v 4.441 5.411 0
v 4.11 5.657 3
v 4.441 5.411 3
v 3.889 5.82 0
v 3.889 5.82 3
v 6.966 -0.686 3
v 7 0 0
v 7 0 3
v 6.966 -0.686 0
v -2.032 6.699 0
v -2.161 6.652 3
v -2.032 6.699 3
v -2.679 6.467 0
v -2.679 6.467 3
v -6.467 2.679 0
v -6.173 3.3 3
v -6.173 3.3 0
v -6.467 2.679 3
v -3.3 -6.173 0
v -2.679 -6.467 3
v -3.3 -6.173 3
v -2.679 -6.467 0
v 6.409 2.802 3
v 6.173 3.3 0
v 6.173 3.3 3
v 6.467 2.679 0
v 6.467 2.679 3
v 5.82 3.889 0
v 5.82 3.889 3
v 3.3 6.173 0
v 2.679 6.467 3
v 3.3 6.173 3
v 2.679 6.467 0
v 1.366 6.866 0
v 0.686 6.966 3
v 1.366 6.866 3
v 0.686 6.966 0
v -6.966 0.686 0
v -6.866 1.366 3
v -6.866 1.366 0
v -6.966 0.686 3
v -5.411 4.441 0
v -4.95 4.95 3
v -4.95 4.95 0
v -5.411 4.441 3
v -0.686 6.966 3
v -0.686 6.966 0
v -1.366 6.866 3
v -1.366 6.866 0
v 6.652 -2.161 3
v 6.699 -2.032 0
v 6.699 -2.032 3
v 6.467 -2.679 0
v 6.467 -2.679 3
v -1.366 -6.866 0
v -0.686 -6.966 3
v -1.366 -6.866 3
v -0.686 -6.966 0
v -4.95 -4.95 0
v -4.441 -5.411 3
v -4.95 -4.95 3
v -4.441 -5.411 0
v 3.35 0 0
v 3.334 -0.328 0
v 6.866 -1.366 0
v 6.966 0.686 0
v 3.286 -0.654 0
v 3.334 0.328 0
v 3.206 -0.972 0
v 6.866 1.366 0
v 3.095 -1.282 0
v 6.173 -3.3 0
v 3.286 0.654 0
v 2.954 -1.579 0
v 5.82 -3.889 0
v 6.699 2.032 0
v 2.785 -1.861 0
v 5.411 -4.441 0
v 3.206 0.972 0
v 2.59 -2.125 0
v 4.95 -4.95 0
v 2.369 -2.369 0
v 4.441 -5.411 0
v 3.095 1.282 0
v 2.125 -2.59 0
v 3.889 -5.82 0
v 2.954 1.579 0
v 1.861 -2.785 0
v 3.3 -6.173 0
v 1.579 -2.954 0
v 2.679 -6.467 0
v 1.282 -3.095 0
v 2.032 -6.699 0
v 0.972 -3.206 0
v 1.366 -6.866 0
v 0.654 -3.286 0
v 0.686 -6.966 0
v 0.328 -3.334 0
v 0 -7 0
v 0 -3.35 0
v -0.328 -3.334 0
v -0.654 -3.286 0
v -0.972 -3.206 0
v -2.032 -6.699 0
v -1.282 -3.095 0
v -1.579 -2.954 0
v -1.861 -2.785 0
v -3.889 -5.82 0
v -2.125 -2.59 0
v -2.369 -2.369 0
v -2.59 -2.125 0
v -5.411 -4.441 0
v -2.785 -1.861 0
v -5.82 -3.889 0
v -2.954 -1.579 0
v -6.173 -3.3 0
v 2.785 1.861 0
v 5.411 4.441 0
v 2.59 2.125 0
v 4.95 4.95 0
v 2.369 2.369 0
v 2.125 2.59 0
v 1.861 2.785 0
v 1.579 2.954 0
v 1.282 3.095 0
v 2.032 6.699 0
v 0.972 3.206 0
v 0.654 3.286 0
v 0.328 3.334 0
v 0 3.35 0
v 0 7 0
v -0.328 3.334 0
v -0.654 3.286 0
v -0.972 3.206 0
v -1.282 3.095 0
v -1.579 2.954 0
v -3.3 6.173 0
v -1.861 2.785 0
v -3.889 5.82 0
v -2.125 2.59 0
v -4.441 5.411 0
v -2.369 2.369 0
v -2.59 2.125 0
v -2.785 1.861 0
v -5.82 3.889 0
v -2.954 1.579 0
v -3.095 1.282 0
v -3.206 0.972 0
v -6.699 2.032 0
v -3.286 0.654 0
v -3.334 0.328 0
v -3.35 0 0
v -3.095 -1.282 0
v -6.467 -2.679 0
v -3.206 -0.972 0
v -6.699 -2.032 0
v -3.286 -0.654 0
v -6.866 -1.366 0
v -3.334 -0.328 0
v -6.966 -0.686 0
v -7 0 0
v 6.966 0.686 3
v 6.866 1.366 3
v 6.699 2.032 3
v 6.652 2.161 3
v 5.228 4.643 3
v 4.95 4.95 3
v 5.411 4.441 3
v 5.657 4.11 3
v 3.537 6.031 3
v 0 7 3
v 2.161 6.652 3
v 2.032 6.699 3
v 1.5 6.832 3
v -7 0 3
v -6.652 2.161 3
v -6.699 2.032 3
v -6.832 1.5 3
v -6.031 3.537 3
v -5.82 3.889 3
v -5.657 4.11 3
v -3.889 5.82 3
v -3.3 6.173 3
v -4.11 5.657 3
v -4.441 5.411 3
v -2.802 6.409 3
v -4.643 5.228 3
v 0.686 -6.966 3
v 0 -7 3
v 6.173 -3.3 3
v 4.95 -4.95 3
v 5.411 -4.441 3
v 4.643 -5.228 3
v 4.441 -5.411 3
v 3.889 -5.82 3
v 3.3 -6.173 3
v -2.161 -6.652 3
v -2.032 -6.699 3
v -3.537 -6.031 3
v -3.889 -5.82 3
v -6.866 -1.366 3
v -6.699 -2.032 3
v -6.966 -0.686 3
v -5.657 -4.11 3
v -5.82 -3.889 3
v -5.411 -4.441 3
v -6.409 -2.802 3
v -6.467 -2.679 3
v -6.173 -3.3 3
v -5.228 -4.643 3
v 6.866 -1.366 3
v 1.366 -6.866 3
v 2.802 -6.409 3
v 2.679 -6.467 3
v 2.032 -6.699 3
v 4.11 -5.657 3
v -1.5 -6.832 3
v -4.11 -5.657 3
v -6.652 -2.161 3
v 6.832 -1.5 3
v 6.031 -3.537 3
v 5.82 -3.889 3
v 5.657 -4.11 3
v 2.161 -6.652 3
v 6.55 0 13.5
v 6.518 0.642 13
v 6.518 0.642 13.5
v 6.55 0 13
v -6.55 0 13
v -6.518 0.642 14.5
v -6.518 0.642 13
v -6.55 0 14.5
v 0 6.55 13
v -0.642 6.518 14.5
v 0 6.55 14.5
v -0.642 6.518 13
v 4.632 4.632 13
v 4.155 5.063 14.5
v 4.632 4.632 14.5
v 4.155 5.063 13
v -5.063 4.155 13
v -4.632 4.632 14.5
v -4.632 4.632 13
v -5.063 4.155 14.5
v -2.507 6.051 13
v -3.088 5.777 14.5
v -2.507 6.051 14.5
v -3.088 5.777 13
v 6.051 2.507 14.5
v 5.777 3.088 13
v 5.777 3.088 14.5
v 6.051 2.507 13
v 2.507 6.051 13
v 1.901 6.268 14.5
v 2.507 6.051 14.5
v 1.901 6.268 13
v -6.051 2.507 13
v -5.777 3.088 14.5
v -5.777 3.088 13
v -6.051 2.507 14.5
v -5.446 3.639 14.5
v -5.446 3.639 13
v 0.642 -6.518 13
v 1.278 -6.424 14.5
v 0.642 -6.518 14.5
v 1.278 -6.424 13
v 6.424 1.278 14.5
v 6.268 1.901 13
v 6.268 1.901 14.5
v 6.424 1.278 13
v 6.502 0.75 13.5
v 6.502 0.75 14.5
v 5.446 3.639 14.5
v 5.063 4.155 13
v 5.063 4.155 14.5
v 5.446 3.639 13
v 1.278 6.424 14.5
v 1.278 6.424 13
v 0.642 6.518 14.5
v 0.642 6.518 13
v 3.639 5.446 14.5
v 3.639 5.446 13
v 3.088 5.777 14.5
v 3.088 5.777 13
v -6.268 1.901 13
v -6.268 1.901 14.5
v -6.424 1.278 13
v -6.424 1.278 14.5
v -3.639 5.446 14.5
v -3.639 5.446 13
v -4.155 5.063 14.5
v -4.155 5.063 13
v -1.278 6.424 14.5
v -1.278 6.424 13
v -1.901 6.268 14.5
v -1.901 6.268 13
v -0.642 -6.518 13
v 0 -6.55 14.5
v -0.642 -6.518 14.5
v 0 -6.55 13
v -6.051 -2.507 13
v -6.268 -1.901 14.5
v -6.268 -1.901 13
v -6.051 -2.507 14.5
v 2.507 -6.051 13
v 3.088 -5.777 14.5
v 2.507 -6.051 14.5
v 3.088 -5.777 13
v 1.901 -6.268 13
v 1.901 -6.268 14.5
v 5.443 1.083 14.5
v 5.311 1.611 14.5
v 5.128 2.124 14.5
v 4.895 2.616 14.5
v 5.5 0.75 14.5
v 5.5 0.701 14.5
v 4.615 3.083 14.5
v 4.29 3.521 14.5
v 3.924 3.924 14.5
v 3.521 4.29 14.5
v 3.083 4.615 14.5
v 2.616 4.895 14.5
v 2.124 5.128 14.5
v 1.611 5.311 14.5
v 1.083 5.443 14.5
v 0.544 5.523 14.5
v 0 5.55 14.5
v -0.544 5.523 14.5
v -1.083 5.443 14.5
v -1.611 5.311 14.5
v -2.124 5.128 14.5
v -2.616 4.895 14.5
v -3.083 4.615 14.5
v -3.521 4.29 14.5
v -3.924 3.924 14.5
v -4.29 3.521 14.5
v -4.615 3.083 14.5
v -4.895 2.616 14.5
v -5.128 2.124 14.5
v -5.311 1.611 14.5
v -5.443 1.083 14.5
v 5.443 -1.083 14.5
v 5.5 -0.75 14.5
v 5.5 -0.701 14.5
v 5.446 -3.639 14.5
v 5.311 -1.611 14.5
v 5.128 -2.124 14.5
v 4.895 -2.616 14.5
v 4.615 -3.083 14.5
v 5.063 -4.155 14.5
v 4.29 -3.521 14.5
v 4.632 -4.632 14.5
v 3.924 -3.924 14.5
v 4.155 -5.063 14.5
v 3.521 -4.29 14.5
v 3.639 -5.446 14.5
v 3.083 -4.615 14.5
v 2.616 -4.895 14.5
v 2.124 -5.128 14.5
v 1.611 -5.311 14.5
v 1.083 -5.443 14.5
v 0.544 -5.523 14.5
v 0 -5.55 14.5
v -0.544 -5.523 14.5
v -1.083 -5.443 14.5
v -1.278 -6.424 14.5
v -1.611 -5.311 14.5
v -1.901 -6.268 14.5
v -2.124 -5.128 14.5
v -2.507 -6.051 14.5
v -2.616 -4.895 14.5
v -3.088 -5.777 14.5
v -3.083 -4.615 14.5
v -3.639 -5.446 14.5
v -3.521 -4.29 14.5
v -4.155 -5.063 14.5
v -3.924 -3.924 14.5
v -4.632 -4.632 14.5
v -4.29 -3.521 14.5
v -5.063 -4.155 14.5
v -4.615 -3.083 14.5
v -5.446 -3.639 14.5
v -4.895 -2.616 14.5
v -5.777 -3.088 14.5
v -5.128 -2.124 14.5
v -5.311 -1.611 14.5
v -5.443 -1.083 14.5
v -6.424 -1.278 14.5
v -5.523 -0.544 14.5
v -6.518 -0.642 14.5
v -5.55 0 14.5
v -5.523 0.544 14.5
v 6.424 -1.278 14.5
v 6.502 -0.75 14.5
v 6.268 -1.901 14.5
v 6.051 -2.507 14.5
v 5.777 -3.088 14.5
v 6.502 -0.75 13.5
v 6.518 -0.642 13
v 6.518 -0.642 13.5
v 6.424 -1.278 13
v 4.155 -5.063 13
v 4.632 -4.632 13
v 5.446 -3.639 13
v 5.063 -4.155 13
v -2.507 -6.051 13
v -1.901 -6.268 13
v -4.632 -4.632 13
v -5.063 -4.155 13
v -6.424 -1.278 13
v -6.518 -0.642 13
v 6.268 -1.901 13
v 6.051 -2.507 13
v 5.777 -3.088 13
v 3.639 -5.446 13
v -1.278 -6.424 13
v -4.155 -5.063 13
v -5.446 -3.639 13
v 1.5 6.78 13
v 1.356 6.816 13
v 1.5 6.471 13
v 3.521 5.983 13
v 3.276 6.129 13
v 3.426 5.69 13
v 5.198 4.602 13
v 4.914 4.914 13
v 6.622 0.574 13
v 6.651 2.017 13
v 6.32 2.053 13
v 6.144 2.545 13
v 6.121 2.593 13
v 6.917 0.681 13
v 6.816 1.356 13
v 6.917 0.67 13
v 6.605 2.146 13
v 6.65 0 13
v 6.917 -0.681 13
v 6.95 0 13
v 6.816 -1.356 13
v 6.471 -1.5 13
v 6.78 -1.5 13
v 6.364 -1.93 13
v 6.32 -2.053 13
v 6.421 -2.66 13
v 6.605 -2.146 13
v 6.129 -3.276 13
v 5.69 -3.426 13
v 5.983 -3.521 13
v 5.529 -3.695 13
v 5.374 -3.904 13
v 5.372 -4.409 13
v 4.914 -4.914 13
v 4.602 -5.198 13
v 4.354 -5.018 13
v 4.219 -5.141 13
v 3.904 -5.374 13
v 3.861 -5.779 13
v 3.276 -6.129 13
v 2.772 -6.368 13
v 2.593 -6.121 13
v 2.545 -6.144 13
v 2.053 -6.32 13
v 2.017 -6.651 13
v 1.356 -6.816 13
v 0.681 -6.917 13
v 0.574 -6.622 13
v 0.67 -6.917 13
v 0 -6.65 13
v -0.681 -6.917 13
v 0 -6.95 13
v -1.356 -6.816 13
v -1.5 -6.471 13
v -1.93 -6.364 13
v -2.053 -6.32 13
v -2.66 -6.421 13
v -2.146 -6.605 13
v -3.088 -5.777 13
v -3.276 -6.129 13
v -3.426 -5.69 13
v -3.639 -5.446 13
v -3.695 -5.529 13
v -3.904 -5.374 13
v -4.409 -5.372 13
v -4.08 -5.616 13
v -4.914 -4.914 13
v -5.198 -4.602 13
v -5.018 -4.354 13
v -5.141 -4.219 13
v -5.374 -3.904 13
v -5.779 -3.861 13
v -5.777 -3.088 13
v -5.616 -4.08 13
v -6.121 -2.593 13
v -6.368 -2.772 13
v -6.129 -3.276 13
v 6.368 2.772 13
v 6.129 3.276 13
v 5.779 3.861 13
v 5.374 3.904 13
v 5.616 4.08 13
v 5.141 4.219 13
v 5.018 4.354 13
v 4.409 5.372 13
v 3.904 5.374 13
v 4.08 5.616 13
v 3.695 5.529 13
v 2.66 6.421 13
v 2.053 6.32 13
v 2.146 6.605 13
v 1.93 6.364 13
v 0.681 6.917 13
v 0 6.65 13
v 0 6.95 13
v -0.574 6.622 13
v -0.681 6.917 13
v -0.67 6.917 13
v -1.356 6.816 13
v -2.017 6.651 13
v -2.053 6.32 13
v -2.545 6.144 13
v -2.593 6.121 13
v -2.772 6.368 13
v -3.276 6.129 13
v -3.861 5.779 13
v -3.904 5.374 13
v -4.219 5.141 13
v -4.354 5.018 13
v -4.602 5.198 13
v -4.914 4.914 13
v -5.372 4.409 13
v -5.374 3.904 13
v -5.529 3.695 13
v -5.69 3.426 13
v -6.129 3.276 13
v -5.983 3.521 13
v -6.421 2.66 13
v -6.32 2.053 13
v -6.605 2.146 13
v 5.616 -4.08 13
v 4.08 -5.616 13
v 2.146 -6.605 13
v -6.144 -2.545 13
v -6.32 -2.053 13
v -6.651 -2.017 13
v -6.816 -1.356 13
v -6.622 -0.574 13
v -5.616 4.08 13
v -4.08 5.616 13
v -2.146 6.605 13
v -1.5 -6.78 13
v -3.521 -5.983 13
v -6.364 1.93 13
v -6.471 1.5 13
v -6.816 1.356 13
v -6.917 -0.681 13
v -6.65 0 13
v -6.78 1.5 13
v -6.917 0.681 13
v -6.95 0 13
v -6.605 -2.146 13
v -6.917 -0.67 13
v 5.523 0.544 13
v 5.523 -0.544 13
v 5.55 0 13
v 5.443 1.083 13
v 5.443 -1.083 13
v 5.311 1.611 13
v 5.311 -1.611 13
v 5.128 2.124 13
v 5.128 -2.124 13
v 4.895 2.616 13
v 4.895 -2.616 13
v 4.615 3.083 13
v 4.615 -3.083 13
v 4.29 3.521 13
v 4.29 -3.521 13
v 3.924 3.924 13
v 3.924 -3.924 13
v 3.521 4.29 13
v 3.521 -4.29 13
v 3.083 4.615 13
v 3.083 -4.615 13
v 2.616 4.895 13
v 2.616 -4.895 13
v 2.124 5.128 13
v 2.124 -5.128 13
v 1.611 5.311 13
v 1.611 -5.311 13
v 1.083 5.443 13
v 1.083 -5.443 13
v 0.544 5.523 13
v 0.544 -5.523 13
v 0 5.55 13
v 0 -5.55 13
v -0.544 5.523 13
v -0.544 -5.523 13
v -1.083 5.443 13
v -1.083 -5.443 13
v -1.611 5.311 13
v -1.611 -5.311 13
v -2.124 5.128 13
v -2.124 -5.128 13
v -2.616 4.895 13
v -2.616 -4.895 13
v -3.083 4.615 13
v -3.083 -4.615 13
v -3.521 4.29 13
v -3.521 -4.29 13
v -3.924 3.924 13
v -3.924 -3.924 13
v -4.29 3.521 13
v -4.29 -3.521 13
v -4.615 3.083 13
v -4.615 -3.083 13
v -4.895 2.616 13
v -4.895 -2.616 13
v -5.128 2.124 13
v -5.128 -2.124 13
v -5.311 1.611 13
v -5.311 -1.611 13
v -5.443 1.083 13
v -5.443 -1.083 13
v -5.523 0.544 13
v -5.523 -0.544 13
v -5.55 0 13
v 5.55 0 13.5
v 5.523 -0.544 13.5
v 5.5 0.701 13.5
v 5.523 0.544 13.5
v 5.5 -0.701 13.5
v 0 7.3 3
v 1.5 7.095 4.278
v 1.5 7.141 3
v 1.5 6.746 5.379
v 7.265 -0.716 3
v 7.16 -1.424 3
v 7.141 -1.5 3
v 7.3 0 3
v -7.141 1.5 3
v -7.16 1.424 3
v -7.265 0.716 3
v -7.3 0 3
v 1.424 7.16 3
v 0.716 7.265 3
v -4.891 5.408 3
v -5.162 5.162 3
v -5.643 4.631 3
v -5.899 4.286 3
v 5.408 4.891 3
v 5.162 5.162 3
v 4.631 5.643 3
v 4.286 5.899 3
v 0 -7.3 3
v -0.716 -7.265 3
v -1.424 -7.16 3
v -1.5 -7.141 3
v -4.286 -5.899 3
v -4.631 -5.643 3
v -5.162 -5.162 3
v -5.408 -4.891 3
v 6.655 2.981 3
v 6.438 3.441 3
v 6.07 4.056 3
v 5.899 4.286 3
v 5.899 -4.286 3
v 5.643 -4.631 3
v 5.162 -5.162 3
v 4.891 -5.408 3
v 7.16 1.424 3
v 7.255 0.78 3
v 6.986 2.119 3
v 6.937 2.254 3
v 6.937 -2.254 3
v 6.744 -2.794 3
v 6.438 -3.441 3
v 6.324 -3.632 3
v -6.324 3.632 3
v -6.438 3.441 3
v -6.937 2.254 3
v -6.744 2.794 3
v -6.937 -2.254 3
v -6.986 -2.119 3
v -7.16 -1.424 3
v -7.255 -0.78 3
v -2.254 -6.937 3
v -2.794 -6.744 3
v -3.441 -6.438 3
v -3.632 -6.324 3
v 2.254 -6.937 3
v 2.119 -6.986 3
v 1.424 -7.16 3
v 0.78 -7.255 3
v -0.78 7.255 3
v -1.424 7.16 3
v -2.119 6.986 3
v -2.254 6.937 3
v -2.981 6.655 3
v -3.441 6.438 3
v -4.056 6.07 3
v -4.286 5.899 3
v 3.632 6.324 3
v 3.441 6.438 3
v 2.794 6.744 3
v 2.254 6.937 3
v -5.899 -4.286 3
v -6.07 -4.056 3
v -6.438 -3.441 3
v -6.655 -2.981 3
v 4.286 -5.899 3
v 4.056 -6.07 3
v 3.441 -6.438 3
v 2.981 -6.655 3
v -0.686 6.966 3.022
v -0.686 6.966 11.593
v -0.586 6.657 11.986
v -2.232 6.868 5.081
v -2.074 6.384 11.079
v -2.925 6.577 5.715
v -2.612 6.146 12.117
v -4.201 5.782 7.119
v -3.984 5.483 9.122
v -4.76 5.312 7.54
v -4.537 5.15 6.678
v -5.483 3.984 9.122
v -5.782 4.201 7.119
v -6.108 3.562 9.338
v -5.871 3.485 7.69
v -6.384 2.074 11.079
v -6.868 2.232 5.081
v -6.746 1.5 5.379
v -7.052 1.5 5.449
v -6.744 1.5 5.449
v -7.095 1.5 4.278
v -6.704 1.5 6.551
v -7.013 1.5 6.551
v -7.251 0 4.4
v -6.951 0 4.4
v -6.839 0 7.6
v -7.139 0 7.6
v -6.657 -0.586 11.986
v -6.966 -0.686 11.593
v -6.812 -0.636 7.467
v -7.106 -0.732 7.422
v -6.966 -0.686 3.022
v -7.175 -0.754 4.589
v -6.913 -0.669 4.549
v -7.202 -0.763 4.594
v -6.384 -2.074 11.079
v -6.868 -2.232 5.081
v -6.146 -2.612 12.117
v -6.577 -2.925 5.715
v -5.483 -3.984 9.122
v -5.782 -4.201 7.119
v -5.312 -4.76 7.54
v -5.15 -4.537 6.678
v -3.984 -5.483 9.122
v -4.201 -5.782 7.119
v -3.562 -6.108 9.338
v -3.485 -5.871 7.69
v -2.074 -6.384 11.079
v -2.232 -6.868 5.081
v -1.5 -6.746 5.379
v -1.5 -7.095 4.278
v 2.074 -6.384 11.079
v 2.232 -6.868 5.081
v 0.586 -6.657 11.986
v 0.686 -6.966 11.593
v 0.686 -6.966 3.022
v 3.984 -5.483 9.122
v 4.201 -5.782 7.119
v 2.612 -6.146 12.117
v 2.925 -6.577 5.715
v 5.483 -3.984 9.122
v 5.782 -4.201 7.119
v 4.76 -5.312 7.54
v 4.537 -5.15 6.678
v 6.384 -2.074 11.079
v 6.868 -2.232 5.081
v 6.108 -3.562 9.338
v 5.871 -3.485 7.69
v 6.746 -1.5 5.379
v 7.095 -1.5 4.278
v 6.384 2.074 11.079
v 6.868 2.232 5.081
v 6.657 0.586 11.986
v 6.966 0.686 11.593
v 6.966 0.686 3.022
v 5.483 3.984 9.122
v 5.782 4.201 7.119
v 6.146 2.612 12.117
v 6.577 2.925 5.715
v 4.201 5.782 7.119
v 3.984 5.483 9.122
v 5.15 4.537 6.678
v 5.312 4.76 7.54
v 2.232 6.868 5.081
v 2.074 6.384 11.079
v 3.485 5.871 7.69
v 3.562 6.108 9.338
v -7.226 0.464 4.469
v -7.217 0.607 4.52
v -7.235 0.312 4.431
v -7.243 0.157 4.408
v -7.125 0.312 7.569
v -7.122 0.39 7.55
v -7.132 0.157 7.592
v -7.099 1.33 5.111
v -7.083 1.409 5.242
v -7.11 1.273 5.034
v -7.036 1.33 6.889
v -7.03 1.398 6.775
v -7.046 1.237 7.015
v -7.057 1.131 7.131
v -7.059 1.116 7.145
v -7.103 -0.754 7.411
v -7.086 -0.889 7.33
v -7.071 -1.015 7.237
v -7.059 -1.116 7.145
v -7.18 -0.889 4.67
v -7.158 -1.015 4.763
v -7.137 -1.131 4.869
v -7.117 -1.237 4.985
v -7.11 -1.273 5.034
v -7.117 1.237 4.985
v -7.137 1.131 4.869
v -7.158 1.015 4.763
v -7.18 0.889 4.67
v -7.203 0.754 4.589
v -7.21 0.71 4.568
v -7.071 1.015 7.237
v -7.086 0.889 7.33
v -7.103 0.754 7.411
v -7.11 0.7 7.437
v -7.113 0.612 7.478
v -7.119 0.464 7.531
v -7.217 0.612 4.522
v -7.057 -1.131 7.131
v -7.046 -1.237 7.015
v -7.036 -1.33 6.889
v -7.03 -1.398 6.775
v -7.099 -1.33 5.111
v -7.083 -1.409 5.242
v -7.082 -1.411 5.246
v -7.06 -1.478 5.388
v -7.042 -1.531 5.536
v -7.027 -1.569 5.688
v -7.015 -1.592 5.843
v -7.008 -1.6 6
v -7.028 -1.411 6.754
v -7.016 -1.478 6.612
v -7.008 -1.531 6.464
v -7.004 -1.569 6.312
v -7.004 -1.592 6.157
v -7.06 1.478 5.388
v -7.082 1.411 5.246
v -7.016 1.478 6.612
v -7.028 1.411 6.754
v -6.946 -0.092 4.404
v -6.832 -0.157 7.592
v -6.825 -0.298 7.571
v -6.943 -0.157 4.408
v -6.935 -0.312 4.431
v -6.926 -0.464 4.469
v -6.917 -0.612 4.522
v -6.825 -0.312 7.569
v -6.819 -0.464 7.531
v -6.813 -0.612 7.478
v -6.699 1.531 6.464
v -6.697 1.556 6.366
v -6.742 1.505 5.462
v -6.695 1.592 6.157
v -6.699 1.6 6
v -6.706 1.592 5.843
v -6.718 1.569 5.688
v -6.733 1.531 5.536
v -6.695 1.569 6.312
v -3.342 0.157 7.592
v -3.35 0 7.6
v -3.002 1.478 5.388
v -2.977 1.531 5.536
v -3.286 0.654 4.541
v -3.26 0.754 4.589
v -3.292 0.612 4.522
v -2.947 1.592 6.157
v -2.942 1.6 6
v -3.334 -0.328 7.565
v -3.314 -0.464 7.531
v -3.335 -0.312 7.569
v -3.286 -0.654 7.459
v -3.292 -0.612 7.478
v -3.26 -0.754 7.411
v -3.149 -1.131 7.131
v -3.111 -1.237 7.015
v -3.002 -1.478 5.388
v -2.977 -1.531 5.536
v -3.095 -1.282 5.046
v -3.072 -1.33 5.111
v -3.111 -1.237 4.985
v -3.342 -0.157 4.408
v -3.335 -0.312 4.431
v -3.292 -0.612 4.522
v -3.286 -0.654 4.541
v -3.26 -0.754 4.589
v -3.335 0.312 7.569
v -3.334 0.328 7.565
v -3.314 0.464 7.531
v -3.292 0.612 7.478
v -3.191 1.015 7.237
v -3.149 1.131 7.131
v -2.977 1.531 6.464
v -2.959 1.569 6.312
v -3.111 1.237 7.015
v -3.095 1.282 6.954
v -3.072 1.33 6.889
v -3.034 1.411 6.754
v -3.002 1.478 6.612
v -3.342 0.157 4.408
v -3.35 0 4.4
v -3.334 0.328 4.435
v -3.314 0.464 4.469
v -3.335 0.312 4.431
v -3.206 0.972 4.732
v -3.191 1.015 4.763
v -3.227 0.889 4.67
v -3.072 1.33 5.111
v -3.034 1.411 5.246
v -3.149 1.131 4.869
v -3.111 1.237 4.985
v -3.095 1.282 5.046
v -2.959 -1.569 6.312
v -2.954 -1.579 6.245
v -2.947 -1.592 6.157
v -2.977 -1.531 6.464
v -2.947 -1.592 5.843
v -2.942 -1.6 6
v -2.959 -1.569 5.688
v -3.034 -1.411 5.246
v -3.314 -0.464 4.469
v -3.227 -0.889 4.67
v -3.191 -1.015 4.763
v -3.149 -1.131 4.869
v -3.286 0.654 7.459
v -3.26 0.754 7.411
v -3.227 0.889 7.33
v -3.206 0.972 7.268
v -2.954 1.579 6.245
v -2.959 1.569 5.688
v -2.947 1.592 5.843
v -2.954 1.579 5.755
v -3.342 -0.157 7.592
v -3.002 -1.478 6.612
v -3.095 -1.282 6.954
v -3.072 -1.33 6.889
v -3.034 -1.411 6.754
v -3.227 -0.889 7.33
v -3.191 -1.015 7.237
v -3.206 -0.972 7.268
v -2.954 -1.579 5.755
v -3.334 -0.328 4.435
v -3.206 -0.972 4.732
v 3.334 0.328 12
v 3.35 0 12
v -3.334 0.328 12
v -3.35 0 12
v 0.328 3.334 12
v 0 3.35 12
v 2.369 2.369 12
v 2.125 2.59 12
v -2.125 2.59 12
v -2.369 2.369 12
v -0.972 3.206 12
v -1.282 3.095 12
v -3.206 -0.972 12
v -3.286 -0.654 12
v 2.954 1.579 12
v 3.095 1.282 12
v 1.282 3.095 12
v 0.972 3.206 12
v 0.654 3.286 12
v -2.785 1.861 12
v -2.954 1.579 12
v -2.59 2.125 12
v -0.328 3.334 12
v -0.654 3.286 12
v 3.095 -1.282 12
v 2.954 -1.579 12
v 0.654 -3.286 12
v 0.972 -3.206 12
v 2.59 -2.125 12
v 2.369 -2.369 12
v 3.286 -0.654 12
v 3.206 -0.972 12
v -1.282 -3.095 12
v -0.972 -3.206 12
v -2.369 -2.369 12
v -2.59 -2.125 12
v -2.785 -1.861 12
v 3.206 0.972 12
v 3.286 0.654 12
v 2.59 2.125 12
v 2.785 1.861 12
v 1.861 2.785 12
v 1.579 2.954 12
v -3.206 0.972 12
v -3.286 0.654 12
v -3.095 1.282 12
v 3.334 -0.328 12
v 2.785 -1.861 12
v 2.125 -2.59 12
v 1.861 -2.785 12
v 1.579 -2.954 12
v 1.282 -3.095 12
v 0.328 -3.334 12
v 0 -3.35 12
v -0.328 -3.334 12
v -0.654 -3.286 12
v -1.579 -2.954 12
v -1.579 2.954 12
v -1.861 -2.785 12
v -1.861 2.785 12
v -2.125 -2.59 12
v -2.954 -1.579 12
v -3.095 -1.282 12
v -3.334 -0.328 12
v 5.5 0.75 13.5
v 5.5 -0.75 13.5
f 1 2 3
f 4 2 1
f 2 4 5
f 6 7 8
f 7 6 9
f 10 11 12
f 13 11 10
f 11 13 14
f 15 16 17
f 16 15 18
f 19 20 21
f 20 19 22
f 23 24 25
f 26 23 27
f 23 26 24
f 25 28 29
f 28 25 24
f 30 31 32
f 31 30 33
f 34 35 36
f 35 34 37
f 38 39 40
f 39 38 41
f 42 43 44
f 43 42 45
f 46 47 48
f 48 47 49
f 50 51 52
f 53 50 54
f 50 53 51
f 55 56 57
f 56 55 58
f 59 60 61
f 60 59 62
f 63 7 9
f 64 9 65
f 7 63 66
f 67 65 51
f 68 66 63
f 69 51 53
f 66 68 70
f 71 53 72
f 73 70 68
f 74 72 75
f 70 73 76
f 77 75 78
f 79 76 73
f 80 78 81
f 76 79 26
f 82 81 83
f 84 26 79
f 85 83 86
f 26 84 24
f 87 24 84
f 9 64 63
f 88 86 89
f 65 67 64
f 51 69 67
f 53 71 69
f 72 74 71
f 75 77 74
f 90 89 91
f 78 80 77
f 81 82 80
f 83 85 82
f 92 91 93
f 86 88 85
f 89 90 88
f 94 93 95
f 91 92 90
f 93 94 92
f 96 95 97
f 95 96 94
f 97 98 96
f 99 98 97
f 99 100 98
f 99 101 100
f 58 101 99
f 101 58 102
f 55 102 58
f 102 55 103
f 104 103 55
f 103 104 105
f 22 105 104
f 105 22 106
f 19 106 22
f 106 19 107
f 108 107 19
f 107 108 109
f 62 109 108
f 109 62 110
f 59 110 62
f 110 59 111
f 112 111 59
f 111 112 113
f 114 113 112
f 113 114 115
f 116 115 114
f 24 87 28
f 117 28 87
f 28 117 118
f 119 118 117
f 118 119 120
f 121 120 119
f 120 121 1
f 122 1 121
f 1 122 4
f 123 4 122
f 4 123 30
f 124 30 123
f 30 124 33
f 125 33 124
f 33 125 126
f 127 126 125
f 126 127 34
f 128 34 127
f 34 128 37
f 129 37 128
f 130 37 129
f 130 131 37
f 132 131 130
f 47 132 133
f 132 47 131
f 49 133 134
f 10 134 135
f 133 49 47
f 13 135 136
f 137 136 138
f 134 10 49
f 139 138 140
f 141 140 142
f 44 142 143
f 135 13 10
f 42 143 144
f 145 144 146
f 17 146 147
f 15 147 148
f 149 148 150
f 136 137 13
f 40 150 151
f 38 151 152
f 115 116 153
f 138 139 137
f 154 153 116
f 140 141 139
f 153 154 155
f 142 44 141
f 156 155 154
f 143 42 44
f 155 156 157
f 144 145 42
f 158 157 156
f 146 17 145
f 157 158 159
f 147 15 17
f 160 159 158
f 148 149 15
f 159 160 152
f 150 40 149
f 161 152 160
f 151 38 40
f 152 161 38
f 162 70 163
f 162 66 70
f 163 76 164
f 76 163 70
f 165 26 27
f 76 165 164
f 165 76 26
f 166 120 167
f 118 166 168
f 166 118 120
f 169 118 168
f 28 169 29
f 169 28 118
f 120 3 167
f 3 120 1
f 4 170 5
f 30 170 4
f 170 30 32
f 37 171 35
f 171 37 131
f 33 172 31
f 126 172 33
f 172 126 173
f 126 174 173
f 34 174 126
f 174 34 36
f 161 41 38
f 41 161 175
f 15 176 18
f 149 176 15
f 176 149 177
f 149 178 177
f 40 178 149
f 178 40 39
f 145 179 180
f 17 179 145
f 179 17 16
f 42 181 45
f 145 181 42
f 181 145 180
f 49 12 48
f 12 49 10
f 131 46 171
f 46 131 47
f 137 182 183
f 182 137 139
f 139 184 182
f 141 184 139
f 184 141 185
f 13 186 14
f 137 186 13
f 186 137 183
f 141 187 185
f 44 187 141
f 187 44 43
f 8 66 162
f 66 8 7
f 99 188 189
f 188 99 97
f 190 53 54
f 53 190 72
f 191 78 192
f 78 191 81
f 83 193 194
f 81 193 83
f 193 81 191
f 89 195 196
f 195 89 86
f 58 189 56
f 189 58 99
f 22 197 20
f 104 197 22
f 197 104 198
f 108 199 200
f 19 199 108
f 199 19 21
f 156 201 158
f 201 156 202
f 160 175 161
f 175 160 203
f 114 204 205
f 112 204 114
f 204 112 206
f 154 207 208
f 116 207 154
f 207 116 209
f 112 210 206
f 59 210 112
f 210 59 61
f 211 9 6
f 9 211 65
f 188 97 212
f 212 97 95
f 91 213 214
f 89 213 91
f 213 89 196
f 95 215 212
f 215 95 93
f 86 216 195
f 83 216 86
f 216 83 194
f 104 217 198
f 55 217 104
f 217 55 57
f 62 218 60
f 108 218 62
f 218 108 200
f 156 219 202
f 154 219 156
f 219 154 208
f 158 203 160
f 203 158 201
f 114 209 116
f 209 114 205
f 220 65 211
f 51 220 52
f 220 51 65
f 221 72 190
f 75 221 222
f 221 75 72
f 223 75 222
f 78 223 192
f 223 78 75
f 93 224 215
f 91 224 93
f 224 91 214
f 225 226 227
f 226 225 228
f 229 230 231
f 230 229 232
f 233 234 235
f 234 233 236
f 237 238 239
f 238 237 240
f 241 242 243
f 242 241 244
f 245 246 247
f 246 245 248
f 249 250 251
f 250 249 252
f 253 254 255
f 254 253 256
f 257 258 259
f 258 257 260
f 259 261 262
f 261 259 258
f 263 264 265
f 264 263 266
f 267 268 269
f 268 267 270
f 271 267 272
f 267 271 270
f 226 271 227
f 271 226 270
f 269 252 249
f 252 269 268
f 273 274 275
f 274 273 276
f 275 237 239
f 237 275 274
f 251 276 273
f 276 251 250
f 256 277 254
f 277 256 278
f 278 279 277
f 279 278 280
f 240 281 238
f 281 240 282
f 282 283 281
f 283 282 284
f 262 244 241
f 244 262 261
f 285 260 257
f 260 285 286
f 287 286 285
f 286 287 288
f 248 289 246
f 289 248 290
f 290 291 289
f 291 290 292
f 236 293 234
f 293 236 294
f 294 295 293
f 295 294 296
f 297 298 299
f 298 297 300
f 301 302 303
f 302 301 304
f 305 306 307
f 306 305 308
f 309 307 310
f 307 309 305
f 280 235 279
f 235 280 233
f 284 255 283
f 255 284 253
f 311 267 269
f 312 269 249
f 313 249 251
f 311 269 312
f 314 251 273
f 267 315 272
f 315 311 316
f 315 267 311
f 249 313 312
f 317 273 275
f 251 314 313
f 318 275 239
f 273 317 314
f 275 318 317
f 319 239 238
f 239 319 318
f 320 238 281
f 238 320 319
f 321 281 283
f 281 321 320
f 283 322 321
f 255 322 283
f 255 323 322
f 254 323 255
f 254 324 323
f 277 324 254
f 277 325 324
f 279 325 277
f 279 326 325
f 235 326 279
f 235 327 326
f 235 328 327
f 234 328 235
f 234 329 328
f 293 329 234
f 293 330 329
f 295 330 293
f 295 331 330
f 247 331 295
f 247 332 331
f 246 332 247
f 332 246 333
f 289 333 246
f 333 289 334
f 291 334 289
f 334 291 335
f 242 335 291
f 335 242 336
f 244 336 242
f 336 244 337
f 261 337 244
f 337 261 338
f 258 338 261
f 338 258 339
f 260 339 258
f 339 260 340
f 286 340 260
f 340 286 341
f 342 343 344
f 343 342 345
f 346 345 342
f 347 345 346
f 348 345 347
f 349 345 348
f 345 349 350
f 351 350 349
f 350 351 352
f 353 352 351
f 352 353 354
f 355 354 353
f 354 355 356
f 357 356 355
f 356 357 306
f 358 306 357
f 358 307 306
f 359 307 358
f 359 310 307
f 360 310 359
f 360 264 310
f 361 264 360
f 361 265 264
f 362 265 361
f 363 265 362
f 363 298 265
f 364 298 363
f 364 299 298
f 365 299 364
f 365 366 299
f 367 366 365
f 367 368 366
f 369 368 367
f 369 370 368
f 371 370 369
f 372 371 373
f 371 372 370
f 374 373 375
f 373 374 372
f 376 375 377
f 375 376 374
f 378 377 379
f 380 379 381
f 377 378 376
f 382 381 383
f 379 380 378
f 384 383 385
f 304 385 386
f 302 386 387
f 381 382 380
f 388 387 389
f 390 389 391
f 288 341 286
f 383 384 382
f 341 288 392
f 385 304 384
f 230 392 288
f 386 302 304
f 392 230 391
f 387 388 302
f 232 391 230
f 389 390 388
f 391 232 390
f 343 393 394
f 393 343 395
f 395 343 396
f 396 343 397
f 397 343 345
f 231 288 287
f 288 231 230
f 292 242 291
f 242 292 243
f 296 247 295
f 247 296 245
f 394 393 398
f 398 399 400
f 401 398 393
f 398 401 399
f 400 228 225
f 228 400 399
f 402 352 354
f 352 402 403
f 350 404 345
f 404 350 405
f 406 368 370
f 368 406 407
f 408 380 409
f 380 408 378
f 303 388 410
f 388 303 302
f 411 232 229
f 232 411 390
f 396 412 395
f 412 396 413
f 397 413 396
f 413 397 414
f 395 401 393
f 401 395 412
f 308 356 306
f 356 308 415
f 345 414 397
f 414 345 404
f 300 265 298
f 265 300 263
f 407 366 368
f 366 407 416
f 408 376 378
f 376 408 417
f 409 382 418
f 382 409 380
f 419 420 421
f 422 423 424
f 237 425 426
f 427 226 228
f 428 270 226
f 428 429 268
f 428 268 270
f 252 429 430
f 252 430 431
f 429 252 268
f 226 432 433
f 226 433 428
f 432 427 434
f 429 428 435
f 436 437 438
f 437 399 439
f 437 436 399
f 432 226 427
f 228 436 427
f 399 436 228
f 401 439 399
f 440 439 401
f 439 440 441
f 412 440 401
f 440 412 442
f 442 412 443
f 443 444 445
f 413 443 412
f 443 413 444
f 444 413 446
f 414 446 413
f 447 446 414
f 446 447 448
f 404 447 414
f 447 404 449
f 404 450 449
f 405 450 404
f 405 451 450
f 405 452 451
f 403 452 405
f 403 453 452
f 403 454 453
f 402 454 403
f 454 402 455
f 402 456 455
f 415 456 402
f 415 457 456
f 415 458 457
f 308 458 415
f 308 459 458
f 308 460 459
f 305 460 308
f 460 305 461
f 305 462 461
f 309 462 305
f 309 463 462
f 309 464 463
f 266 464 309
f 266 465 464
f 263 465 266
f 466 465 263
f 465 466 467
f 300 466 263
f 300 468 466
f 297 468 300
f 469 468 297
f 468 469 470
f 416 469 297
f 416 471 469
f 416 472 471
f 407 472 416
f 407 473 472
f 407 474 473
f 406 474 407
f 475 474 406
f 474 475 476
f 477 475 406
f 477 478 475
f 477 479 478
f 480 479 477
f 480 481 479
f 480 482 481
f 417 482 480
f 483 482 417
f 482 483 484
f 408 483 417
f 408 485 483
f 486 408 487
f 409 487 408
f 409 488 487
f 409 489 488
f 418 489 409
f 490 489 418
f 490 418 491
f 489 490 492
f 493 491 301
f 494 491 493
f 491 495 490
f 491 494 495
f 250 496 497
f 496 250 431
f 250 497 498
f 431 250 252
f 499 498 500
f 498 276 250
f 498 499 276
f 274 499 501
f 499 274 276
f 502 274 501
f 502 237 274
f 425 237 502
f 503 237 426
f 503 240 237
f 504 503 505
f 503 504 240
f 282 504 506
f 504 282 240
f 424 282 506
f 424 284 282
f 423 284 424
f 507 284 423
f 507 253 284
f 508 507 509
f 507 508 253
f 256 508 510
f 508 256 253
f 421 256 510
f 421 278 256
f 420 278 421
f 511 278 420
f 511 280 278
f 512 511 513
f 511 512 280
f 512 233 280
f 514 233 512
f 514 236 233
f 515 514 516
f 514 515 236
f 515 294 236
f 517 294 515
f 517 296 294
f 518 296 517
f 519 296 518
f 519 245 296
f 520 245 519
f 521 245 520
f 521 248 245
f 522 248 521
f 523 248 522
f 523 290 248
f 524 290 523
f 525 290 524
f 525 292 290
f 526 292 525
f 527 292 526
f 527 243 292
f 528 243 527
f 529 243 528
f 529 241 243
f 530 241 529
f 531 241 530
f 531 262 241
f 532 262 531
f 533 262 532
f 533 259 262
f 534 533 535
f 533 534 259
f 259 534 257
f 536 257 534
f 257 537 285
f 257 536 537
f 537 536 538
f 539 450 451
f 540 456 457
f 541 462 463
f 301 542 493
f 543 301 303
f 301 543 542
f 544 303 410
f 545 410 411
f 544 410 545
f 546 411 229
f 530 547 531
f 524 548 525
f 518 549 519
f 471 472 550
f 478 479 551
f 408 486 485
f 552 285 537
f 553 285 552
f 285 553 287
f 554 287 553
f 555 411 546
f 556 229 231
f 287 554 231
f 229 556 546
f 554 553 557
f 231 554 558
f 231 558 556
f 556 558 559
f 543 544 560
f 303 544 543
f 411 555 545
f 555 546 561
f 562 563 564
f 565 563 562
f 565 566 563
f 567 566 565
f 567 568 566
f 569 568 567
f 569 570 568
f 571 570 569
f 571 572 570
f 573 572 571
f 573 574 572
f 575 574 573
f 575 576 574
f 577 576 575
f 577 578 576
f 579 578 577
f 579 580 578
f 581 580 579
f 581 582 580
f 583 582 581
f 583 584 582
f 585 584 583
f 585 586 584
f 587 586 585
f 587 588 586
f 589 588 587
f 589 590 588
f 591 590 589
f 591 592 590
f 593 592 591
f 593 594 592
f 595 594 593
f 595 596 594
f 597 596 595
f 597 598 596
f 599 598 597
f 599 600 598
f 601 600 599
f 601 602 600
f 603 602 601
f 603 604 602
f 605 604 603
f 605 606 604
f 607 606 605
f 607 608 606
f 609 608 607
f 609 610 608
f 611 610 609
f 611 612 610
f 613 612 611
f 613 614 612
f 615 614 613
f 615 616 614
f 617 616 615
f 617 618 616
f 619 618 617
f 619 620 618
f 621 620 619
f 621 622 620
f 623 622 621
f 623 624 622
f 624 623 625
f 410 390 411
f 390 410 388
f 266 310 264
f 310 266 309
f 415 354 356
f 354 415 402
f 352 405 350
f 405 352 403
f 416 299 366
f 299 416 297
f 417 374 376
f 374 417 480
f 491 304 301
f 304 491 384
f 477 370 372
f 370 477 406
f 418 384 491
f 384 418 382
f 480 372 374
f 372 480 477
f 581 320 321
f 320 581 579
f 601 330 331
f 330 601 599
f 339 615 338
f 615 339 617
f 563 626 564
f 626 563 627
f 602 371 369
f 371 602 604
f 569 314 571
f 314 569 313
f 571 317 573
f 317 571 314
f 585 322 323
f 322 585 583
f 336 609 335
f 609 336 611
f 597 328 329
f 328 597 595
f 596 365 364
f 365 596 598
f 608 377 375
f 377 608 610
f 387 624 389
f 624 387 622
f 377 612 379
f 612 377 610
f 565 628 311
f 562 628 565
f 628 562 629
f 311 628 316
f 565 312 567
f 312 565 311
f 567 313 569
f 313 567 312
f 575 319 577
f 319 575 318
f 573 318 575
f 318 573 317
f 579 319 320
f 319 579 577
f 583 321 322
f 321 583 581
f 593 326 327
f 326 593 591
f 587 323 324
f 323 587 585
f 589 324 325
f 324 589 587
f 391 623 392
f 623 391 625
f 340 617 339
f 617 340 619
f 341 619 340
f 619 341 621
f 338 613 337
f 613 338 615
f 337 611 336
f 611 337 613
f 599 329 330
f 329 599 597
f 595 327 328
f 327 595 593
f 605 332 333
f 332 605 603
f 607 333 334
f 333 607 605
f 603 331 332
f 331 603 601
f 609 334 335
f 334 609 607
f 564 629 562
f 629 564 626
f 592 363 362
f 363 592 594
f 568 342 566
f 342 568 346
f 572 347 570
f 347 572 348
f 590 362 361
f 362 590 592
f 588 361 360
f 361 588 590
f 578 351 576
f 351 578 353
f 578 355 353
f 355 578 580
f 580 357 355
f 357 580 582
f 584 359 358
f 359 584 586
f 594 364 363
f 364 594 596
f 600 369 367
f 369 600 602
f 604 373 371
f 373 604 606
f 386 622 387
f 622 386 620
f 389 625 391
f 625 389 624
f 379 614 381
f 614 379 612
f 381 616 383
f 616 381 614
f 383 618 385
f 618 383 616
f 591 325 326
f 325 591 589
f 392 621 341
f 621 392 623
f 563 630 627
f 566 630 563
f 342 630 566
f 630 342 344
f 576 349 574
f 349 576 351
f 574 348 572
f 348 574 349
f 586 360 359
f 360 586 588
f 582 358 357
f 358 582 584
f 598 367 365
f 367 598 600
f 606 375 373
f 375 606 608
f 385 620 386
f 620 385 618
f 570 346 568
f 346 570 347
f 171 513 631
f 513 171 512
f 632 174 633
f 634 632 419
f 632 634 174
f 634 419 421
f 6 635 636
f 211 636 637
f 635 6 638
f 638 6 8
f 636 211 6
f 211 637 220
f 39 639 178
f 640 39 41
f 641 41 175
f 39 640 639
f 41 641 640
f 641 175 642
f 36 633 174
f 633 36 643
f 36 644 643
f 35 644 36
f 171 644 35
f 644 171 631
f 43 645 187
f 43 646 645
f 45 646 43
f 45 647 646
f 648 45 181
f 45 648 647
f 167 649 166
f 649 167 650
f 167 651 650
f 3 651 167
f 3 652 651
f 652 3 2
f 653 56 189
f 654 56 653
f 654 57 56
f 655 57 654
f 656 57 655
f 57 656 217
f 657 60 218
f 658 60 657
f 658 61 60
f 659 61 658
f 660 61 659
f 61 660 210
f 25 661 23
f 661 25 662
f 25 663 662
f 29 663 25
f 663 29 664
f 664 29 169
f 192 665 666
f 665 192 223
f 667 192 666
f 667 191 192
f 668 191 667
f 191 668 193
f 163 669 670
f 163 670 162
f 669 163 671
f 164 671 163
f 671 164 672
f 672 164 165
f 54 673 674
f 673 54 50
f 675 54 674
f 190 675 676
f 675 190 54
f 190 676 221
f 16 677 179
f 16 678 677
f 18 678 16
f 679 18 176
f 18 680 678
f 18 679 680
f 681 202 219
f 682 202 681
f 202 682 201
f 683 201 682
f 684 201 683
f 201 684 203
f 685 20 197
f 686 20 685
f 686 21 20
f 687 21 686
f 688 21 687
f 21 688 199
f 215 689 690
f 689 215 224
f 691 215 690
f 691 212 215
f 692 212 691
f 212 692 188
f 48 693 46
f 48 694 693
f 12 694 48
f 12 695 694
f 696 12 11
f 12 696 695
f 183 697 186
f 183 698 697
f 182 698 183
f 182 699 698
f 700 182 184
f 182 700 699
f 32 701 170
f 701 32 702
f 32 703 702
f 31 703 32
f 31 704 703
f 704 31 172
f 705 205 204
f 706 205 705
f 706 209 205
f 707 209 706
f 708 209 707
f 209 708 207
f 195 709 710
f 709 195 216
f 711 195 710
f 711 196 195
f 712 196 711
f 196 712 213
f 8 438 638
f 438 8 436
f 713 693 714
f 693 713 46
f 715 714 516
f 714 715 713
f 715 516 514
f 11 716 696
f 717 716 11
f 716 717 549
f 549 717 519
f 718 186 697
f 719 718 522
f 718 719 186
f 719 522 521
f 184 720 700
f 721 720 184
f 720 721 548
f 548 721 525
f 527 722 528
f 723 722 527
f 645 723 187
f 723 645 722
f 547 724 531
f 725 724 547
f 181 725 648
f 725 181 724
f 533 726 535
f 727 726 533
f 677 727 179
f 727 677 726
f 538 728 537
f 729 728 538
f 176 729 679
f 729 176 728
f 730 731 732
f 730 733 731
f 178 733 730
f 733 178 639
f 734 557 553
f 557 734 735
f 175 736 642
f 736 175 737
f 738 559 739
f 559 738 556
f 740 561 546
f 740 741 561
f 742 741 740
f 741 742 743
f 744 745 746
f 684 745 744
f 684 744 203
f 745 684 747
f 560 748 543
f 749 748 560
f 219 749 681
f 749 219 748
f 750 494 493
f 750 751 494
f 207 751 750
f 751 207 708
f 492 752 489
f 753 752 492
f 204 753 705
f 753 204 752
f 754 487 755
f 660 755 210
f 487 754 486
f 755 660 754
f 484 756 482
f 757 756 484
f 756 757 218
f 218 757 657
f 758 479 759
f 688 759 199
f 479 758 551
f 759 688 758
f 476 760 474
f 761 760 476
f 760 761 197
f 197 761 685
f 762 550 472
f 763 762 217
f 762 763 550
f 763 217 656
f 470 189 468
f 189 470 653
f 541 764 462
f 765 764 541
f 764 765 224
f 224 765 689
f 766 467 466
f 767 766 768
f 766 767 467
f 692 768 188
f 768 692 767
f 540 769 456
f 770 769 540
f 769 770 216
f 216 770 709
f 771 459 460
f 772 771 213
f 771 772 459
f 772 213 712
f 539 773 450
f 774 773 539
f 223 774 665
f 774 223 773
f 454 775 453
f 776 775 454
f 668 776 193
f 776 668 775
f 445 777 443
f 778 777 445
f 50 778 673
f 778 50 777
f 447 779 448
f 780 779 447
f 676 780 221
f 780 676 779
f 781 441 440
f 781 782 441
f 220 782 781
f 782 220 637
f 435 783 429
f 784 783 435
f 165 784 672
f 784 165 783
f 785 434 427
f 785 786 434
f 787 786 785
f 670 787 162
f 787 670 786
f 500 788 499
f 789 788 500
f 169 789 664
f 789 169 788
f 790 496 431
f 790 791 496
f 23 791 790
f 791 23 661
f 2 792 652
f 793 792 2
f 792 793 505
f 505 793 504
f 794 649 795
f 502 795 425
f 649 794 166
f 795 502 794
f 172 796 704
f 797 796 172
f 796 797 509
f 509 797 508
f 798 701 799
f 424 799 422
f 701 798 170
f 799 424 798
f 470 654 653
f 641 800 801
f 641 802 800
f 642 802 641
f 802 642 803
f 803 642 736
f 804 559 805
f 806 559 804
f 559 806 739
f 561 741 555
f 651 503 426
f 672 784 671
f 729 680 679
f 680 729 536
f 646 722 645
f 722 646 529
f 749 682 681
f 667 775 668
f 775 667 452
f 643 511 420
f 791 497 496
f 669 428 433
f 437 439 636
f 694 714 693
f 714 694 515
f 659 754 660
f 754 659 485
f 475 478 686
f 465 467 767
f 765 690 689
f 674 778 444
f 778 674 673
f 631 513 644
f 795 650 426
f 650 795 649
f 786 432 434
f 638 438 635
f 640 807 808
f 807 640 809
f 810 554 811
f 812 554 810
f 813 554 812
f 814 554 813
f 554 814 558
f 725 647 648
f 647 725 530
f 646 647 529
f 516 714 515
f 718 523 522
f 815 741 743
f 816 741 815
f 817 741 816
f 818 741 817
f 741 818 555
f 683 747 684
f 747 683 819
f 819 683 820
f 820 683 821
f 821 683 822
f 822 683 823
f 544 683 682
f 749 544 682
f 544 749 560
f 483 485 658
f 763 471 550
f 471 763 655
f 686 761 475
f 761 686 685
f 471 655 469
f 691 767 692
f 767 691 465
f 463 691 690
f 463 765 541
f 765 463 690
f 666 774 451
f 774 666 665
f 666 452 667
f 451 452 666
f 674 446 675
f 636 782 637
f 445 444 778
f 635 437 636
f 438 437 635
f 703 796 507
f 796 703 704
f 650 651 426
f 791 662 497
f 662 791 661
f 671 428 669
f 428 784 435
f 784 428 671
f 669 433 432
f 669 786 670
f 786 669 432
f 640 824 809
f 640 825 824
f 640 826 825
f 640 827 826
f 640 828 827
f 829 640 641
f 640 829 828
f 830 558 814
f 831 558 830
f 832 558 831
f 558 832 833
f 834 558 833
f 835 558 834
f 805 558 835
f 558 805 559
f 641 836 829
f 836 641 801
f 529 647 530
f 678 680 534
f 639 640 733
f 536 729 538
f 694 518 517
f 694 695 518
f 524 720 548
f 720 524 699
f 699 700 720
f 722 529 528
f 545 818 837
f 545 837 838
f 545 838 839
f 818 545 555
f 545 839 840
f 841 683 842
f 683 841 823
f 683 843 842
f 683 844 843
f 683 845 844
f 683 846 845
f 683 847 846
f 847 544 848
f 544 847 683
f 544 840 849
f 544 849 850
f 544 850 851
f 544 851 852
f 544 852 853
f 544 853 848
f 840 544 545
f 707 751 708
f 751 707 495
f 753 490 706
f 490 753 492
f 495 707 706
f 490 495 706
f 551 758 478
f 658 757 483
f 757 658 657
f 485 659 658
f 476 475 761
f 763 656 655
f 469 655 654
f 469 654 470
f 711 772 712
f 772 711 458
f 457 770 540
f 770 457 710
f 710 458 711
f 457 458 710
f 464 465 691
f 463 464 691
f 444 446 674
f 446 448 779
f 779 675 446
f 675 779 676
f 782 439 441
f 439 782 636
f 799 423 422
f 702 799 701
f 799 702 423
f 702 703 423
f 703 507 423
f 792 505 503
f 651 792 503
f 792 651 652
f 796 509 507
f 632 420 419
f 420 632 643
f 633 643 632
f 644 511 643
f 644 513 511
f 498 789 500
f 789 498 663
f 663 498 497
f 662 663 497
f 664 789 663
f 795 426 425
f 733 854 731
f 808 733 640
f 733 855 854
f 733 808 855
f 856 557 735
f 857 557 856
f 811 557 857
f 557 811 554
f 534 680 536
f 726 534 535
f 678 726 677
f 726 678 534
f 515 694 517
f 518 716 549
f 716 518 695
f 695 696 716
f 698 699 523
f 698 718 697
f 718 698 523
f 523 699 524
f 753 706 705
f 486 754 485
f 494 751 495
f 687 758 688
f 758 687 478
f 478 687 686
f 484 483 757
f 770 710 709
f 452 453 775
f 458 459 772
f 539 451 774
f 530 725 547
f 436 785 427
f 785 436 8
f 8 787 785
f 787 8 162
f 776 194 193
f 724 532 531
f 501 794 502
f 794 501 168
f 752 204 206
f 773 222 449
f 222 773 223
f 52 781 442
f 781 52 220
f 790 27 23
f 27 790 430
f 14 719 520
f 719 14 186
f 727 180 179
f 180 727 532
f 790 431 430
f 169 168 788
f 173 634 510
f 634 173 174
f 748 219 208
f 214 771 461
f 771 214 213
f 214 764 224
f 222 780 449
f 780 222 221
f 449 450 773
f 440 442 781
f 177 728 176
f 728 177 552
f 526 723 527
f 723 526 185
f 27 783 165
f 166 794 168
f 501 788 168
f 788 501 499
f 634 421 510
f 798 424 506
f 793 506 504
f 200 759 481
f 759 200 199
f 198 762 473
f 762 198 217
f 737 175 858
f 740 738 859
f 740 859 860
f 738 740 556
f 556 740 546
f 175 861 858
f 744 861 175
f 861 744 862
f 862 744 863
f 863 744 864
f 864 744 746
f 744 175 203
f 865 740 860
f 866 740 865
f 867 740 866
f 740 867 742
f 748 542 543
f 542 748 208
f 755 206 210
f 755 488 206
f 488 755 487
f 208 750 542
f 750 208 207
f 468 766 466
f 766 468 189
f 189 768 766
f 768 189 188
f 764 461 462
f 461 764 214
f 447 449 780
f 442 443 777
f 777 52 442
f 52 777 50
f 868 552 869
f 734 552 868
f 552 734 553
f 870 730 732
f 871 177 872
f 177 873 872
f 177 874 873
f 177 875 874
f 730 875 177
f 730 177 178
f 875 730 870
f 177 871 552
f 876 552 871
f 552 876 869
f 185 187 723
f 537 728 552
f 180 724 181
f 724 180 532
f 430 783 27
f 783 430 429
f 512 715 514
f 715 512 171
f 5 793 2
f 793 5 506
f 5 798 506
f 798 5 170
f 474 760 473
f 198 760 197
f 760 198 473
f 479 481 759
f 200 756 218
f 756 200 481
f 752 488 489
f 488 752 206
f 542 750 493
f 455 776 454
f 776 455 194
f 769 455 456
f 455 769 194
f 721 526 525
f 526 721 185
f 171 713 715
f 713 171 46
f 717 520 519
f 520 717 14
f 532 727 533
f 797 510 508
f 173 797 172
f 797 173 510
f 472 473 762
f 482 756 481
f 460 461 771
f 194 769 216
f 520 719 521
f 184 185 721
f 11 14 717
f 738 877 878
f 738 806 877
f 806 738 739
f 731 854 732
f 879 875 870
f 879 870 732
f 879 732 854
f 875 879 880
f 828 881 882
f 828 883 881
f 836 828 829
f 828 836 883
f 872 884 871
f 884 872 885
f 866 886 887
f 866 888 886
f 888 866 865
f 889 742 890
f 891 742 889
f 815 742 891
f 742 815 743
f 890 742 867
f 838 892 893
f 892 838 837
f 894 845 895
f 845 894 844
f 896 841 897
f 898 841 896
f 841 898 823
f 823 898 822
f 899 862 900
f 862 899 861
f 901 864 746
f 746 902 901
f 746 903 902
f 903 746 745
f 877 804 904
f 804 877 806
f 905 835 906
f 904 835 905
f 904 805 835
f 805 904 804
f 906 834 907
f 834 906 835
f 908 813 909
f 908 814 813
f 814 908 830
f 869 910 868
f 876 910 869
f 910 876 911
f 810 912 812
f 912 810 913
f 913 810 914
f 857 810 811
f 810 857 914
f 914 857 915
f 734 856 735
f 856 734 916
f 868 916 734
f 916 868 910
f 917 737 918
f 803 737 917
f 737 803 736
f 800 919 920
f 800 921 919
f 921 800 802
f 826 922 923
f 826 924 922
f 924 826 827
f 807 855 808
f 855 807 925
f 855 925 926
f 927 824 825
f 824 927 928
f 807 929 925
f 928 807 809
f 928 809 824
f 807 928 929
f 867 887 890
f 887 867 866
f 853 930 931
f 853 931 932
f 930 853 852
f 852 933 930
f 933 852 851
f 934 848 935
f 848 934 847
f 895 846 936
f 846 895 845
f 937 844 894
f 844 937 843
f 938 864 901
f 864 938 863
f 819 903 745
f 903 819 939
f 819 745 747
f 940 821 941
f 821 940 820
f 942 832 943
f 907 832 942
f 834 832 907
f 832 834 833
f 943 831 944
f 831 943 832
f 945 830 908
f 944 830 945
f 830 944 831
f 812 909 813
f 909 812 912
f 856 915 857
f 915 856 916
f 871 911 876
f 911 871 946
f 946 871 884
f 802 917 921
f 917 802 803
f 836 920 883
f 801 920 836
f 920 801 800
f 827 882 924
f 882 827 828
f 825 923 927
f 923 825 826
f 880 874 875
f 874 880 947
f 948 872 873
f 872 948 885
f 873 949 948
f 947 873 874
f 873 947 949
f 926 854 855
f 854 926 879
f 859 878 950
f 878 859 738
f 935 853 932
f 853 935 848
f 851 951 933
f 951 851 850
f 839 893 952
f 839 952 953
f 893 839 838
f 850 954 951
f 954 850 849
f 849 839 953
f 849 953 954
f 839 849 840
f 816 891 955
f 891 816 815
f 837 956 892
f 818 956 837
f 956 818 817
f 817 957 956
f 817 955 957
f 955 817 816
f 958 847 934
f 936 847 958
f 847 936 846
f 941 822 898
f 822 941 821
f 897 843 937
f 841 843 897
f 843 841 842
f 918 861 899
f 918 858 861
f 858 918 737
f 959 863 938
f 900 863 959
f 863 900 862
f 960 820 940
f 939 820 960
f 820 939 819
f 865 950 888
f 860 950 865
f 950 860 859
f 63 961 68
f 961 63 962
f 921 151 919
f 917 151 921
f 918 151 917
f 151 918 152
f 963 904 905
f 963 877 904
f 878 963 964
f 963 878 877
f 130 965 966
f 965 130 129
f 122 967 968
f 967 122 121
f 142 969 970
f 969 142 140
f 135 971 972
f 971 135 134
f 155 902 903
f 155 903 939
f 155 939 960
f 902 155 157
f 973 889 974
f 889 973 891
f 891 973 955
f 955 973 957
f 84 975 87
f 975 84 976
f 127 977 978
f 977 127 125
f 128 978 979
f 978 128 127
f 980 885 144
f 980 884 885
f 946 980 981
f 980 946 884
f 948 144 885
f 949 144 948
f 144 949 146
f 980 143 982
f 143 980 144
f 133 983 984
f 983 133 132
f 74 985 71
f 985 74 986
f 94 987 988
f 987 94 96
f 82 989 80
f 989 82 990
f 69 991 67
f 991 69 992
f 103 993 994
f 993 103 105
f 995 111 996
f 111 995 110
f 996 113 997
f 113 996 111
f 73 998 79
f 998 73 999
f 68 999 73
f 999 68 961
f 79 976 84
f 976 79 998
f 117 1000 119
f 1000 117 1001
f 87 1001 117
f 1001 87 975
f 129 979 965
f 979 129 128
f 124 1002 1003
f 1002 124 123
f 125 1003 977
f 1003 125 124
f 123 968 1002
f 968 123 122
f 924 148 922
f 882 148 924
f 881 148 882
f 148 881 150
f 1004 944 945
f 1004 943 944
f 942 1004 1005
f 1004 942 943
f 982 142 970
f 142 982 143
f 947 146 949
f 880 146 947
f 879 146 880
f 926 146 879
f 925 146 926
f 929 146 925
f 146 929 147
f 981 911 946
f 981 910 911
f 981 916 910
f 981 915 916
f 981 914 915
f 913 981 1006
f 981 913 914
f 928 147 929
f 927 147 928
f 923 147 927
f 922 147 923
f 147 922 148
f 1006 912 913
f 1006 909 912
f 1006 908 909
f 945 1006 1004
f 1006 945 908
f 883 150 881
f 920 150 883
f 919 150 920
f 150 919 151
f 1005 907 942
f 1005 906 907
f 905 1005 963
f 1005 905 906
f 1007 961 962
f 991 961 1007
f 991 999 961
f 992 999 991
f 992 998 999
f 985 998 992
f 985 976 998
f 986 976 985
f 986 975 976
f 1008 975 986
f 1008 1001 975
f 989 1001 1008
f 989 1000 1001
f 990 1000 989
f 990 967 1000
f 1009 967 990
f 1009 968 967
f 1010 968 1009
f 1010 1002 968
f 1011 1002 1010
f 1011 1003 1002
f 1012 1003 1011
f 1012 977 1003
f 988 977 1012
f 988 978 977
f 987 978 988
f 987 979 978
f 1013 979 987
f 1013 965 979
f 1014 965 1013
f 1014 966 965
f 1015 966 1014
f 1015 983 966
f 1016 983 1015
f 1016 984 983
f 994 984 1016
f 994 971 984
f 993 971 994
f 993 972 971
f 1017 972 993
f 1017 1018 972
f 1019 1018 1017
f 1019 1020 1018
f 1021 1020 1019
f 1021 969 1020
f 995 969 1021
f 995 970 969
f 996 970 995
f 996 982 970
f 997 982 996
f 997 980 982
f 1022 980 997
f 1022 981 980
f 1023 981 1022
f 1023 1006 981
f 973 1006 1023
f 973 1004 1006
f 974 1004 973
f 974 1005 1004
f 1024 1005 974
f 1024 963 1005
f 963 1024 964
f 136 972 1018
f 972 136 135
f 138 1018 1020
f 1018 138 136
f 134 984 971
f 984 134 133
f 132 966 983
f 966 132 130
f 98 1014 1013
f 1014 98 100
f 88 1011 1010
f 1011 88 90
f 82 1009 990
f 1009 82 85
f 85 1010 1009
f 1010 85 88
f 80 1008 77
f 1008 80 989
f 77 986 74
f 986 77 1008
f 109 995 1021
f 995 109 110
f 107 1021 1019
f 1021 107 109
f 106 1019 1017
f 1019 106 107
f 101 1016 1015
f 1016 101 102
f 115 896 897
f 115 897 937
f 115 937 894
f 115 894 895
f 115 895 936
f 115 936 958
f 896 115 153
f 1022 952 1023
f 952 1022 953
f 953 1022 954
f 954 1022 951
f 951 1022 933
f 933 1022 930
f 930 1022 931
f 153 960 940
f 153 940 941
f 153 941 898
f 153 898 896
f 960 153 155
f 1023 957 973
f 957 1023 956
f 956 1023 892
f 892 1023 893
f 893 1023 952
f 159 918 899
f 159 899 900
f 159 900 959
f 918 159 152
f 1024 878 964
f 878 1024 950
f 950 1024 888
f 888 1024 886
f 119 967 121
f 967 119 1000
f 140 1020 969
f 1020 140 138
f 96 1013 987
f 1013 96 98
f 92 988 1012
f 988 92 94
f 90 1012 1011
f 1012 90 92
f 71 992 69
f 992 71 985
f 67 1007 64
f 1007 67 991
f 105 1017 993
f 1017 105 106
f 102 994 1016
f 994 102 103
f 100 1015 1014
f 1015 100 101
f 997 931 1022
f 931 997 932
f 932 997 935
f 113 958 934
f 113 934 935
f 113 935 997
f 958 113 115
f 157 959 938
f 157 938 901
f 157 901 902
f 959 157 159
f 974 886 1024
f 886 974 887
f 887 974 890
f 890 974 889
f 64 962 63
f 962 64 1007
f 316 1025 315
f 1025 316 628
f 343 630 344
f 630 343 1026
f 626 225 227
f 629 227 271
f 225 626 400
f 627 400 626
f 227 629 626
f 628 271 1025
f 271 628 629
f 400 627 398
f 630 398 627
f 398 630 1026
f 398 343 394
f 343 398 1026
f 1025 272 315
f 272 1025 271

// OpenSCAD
// Function count - increase to improve object resolution
$fn=64;

b1_height = 3.0;
b1_width = 14.0;

b2_width_lower = 14.0;
b2_width_upper = 14.0;
b2_height = 0.0;

main_width_lower = 14.0;
main_width_upper = 13.3;
main_height = 10.0;

ring_height = 1.5;
ring_width_outer = 13.1;
ring_width_inner = 11.1;

arrow_height = 0.0;

knurl_width = 1.5;
knurl_count = 20;
knurl_depth = 0.6;
unknurled_height = 0.0;

screw_hole_width=3.2;
screw_hole_height=6.0;

// Use 6.7 for version to fit on a 0.25" shaft.
// Use 5.0 to fit a 0.20" shaft (as on the version used as a concentric knob).
shaft_width=6.7;
//shaft_width=5.0;

bottom_hole_height=12.0;
bottom_hole_width=shaft_width;

inner_hole_height=12.0;
inner_hole_width=shaft_width;

module arrow() {
    
    intersection() {
    
        bottom();
        translate([(b2_width_lower+b2_width_upper)/4-(b2_width_lower-b2_width_upper)/4,0,0])
        cylinder(h=b1_height+b2_height,r=(b2_width_lower-b2_width_upper)/2,$fn=3);
    }
}

module ring() {
    
    difference() {
        
        cylinder(h=ring_height, r=ring_width_outer/2);
        //
        cylinder(h=ring_height, r=ring_width_inner/2);
        }
}

module bottom() {
    
    // Bottom 1
    cylinder(h=b1_height,r=b1_width/2); 

    // Bottom 2
    translate([0,0,b1_height])
    cylinder(h=b2_height,r1=b2_width_lower/2,r2=b2_width_upper/2); 
    
}

module main() {
    
    translate([0,0,b1_height+b2_height])
    cylinder(h=main_height, r1=main_width_lower/2, r2=main_width_upper/2);

}

module main_outer() {
    
    translate([0,0,b1_height+b2_height])
    cylinder(h=main_height, r1=(main_width_lower+knurl_depth)/2, r2=(main_width_upper+knurl_depth)/2);

}

module main_outer_unknurled_area() {

intersection() {
    
    main_outer();
    translate([0,0,b1_height+b2_height])
    cylinder(h=unknurled_height, r=20);
    
    }

}

module knurls() {
    translate([0,0,b1_height+b2_height])
    for (knurl = [0 : knurl_count-1]) {
        rotate([0,0,knurl*360/knurl_count])
        cube([knurl_width,main_width_lower,main_height]);
    }
    }

module knurls2() {
    
    intersection() {
    
    main_outer();
   
    knurls();
    
    
        
    }
   
    main_outer_unknurled_area();

}

module knob() {
    bottom();
main();

translate([0,0,b1_height+b2_height+main_height])
ring();

// Arrow
translate([0,0,arrow_height])
arrow();
knurls2();
    }

/*********** START ************/

difference() {
    
knob();

    // Holes
    translate([0,0,screw_hole_height]) rotate([0,-90,0]) cylinder(h=100, r=screw_hole_width/2);
   
    // Bottom hole
    cylinder(h=bottom_hole_height, r=bottom_hole_width/2);

    // Inner hole
    cylinder(h=inner_hole_height, r=inner_hole_width/2);

    // Pointer
    translate([5.5, -0.75, 13.5], 0) cube([1.5, 1.5, 1.5]);

}
